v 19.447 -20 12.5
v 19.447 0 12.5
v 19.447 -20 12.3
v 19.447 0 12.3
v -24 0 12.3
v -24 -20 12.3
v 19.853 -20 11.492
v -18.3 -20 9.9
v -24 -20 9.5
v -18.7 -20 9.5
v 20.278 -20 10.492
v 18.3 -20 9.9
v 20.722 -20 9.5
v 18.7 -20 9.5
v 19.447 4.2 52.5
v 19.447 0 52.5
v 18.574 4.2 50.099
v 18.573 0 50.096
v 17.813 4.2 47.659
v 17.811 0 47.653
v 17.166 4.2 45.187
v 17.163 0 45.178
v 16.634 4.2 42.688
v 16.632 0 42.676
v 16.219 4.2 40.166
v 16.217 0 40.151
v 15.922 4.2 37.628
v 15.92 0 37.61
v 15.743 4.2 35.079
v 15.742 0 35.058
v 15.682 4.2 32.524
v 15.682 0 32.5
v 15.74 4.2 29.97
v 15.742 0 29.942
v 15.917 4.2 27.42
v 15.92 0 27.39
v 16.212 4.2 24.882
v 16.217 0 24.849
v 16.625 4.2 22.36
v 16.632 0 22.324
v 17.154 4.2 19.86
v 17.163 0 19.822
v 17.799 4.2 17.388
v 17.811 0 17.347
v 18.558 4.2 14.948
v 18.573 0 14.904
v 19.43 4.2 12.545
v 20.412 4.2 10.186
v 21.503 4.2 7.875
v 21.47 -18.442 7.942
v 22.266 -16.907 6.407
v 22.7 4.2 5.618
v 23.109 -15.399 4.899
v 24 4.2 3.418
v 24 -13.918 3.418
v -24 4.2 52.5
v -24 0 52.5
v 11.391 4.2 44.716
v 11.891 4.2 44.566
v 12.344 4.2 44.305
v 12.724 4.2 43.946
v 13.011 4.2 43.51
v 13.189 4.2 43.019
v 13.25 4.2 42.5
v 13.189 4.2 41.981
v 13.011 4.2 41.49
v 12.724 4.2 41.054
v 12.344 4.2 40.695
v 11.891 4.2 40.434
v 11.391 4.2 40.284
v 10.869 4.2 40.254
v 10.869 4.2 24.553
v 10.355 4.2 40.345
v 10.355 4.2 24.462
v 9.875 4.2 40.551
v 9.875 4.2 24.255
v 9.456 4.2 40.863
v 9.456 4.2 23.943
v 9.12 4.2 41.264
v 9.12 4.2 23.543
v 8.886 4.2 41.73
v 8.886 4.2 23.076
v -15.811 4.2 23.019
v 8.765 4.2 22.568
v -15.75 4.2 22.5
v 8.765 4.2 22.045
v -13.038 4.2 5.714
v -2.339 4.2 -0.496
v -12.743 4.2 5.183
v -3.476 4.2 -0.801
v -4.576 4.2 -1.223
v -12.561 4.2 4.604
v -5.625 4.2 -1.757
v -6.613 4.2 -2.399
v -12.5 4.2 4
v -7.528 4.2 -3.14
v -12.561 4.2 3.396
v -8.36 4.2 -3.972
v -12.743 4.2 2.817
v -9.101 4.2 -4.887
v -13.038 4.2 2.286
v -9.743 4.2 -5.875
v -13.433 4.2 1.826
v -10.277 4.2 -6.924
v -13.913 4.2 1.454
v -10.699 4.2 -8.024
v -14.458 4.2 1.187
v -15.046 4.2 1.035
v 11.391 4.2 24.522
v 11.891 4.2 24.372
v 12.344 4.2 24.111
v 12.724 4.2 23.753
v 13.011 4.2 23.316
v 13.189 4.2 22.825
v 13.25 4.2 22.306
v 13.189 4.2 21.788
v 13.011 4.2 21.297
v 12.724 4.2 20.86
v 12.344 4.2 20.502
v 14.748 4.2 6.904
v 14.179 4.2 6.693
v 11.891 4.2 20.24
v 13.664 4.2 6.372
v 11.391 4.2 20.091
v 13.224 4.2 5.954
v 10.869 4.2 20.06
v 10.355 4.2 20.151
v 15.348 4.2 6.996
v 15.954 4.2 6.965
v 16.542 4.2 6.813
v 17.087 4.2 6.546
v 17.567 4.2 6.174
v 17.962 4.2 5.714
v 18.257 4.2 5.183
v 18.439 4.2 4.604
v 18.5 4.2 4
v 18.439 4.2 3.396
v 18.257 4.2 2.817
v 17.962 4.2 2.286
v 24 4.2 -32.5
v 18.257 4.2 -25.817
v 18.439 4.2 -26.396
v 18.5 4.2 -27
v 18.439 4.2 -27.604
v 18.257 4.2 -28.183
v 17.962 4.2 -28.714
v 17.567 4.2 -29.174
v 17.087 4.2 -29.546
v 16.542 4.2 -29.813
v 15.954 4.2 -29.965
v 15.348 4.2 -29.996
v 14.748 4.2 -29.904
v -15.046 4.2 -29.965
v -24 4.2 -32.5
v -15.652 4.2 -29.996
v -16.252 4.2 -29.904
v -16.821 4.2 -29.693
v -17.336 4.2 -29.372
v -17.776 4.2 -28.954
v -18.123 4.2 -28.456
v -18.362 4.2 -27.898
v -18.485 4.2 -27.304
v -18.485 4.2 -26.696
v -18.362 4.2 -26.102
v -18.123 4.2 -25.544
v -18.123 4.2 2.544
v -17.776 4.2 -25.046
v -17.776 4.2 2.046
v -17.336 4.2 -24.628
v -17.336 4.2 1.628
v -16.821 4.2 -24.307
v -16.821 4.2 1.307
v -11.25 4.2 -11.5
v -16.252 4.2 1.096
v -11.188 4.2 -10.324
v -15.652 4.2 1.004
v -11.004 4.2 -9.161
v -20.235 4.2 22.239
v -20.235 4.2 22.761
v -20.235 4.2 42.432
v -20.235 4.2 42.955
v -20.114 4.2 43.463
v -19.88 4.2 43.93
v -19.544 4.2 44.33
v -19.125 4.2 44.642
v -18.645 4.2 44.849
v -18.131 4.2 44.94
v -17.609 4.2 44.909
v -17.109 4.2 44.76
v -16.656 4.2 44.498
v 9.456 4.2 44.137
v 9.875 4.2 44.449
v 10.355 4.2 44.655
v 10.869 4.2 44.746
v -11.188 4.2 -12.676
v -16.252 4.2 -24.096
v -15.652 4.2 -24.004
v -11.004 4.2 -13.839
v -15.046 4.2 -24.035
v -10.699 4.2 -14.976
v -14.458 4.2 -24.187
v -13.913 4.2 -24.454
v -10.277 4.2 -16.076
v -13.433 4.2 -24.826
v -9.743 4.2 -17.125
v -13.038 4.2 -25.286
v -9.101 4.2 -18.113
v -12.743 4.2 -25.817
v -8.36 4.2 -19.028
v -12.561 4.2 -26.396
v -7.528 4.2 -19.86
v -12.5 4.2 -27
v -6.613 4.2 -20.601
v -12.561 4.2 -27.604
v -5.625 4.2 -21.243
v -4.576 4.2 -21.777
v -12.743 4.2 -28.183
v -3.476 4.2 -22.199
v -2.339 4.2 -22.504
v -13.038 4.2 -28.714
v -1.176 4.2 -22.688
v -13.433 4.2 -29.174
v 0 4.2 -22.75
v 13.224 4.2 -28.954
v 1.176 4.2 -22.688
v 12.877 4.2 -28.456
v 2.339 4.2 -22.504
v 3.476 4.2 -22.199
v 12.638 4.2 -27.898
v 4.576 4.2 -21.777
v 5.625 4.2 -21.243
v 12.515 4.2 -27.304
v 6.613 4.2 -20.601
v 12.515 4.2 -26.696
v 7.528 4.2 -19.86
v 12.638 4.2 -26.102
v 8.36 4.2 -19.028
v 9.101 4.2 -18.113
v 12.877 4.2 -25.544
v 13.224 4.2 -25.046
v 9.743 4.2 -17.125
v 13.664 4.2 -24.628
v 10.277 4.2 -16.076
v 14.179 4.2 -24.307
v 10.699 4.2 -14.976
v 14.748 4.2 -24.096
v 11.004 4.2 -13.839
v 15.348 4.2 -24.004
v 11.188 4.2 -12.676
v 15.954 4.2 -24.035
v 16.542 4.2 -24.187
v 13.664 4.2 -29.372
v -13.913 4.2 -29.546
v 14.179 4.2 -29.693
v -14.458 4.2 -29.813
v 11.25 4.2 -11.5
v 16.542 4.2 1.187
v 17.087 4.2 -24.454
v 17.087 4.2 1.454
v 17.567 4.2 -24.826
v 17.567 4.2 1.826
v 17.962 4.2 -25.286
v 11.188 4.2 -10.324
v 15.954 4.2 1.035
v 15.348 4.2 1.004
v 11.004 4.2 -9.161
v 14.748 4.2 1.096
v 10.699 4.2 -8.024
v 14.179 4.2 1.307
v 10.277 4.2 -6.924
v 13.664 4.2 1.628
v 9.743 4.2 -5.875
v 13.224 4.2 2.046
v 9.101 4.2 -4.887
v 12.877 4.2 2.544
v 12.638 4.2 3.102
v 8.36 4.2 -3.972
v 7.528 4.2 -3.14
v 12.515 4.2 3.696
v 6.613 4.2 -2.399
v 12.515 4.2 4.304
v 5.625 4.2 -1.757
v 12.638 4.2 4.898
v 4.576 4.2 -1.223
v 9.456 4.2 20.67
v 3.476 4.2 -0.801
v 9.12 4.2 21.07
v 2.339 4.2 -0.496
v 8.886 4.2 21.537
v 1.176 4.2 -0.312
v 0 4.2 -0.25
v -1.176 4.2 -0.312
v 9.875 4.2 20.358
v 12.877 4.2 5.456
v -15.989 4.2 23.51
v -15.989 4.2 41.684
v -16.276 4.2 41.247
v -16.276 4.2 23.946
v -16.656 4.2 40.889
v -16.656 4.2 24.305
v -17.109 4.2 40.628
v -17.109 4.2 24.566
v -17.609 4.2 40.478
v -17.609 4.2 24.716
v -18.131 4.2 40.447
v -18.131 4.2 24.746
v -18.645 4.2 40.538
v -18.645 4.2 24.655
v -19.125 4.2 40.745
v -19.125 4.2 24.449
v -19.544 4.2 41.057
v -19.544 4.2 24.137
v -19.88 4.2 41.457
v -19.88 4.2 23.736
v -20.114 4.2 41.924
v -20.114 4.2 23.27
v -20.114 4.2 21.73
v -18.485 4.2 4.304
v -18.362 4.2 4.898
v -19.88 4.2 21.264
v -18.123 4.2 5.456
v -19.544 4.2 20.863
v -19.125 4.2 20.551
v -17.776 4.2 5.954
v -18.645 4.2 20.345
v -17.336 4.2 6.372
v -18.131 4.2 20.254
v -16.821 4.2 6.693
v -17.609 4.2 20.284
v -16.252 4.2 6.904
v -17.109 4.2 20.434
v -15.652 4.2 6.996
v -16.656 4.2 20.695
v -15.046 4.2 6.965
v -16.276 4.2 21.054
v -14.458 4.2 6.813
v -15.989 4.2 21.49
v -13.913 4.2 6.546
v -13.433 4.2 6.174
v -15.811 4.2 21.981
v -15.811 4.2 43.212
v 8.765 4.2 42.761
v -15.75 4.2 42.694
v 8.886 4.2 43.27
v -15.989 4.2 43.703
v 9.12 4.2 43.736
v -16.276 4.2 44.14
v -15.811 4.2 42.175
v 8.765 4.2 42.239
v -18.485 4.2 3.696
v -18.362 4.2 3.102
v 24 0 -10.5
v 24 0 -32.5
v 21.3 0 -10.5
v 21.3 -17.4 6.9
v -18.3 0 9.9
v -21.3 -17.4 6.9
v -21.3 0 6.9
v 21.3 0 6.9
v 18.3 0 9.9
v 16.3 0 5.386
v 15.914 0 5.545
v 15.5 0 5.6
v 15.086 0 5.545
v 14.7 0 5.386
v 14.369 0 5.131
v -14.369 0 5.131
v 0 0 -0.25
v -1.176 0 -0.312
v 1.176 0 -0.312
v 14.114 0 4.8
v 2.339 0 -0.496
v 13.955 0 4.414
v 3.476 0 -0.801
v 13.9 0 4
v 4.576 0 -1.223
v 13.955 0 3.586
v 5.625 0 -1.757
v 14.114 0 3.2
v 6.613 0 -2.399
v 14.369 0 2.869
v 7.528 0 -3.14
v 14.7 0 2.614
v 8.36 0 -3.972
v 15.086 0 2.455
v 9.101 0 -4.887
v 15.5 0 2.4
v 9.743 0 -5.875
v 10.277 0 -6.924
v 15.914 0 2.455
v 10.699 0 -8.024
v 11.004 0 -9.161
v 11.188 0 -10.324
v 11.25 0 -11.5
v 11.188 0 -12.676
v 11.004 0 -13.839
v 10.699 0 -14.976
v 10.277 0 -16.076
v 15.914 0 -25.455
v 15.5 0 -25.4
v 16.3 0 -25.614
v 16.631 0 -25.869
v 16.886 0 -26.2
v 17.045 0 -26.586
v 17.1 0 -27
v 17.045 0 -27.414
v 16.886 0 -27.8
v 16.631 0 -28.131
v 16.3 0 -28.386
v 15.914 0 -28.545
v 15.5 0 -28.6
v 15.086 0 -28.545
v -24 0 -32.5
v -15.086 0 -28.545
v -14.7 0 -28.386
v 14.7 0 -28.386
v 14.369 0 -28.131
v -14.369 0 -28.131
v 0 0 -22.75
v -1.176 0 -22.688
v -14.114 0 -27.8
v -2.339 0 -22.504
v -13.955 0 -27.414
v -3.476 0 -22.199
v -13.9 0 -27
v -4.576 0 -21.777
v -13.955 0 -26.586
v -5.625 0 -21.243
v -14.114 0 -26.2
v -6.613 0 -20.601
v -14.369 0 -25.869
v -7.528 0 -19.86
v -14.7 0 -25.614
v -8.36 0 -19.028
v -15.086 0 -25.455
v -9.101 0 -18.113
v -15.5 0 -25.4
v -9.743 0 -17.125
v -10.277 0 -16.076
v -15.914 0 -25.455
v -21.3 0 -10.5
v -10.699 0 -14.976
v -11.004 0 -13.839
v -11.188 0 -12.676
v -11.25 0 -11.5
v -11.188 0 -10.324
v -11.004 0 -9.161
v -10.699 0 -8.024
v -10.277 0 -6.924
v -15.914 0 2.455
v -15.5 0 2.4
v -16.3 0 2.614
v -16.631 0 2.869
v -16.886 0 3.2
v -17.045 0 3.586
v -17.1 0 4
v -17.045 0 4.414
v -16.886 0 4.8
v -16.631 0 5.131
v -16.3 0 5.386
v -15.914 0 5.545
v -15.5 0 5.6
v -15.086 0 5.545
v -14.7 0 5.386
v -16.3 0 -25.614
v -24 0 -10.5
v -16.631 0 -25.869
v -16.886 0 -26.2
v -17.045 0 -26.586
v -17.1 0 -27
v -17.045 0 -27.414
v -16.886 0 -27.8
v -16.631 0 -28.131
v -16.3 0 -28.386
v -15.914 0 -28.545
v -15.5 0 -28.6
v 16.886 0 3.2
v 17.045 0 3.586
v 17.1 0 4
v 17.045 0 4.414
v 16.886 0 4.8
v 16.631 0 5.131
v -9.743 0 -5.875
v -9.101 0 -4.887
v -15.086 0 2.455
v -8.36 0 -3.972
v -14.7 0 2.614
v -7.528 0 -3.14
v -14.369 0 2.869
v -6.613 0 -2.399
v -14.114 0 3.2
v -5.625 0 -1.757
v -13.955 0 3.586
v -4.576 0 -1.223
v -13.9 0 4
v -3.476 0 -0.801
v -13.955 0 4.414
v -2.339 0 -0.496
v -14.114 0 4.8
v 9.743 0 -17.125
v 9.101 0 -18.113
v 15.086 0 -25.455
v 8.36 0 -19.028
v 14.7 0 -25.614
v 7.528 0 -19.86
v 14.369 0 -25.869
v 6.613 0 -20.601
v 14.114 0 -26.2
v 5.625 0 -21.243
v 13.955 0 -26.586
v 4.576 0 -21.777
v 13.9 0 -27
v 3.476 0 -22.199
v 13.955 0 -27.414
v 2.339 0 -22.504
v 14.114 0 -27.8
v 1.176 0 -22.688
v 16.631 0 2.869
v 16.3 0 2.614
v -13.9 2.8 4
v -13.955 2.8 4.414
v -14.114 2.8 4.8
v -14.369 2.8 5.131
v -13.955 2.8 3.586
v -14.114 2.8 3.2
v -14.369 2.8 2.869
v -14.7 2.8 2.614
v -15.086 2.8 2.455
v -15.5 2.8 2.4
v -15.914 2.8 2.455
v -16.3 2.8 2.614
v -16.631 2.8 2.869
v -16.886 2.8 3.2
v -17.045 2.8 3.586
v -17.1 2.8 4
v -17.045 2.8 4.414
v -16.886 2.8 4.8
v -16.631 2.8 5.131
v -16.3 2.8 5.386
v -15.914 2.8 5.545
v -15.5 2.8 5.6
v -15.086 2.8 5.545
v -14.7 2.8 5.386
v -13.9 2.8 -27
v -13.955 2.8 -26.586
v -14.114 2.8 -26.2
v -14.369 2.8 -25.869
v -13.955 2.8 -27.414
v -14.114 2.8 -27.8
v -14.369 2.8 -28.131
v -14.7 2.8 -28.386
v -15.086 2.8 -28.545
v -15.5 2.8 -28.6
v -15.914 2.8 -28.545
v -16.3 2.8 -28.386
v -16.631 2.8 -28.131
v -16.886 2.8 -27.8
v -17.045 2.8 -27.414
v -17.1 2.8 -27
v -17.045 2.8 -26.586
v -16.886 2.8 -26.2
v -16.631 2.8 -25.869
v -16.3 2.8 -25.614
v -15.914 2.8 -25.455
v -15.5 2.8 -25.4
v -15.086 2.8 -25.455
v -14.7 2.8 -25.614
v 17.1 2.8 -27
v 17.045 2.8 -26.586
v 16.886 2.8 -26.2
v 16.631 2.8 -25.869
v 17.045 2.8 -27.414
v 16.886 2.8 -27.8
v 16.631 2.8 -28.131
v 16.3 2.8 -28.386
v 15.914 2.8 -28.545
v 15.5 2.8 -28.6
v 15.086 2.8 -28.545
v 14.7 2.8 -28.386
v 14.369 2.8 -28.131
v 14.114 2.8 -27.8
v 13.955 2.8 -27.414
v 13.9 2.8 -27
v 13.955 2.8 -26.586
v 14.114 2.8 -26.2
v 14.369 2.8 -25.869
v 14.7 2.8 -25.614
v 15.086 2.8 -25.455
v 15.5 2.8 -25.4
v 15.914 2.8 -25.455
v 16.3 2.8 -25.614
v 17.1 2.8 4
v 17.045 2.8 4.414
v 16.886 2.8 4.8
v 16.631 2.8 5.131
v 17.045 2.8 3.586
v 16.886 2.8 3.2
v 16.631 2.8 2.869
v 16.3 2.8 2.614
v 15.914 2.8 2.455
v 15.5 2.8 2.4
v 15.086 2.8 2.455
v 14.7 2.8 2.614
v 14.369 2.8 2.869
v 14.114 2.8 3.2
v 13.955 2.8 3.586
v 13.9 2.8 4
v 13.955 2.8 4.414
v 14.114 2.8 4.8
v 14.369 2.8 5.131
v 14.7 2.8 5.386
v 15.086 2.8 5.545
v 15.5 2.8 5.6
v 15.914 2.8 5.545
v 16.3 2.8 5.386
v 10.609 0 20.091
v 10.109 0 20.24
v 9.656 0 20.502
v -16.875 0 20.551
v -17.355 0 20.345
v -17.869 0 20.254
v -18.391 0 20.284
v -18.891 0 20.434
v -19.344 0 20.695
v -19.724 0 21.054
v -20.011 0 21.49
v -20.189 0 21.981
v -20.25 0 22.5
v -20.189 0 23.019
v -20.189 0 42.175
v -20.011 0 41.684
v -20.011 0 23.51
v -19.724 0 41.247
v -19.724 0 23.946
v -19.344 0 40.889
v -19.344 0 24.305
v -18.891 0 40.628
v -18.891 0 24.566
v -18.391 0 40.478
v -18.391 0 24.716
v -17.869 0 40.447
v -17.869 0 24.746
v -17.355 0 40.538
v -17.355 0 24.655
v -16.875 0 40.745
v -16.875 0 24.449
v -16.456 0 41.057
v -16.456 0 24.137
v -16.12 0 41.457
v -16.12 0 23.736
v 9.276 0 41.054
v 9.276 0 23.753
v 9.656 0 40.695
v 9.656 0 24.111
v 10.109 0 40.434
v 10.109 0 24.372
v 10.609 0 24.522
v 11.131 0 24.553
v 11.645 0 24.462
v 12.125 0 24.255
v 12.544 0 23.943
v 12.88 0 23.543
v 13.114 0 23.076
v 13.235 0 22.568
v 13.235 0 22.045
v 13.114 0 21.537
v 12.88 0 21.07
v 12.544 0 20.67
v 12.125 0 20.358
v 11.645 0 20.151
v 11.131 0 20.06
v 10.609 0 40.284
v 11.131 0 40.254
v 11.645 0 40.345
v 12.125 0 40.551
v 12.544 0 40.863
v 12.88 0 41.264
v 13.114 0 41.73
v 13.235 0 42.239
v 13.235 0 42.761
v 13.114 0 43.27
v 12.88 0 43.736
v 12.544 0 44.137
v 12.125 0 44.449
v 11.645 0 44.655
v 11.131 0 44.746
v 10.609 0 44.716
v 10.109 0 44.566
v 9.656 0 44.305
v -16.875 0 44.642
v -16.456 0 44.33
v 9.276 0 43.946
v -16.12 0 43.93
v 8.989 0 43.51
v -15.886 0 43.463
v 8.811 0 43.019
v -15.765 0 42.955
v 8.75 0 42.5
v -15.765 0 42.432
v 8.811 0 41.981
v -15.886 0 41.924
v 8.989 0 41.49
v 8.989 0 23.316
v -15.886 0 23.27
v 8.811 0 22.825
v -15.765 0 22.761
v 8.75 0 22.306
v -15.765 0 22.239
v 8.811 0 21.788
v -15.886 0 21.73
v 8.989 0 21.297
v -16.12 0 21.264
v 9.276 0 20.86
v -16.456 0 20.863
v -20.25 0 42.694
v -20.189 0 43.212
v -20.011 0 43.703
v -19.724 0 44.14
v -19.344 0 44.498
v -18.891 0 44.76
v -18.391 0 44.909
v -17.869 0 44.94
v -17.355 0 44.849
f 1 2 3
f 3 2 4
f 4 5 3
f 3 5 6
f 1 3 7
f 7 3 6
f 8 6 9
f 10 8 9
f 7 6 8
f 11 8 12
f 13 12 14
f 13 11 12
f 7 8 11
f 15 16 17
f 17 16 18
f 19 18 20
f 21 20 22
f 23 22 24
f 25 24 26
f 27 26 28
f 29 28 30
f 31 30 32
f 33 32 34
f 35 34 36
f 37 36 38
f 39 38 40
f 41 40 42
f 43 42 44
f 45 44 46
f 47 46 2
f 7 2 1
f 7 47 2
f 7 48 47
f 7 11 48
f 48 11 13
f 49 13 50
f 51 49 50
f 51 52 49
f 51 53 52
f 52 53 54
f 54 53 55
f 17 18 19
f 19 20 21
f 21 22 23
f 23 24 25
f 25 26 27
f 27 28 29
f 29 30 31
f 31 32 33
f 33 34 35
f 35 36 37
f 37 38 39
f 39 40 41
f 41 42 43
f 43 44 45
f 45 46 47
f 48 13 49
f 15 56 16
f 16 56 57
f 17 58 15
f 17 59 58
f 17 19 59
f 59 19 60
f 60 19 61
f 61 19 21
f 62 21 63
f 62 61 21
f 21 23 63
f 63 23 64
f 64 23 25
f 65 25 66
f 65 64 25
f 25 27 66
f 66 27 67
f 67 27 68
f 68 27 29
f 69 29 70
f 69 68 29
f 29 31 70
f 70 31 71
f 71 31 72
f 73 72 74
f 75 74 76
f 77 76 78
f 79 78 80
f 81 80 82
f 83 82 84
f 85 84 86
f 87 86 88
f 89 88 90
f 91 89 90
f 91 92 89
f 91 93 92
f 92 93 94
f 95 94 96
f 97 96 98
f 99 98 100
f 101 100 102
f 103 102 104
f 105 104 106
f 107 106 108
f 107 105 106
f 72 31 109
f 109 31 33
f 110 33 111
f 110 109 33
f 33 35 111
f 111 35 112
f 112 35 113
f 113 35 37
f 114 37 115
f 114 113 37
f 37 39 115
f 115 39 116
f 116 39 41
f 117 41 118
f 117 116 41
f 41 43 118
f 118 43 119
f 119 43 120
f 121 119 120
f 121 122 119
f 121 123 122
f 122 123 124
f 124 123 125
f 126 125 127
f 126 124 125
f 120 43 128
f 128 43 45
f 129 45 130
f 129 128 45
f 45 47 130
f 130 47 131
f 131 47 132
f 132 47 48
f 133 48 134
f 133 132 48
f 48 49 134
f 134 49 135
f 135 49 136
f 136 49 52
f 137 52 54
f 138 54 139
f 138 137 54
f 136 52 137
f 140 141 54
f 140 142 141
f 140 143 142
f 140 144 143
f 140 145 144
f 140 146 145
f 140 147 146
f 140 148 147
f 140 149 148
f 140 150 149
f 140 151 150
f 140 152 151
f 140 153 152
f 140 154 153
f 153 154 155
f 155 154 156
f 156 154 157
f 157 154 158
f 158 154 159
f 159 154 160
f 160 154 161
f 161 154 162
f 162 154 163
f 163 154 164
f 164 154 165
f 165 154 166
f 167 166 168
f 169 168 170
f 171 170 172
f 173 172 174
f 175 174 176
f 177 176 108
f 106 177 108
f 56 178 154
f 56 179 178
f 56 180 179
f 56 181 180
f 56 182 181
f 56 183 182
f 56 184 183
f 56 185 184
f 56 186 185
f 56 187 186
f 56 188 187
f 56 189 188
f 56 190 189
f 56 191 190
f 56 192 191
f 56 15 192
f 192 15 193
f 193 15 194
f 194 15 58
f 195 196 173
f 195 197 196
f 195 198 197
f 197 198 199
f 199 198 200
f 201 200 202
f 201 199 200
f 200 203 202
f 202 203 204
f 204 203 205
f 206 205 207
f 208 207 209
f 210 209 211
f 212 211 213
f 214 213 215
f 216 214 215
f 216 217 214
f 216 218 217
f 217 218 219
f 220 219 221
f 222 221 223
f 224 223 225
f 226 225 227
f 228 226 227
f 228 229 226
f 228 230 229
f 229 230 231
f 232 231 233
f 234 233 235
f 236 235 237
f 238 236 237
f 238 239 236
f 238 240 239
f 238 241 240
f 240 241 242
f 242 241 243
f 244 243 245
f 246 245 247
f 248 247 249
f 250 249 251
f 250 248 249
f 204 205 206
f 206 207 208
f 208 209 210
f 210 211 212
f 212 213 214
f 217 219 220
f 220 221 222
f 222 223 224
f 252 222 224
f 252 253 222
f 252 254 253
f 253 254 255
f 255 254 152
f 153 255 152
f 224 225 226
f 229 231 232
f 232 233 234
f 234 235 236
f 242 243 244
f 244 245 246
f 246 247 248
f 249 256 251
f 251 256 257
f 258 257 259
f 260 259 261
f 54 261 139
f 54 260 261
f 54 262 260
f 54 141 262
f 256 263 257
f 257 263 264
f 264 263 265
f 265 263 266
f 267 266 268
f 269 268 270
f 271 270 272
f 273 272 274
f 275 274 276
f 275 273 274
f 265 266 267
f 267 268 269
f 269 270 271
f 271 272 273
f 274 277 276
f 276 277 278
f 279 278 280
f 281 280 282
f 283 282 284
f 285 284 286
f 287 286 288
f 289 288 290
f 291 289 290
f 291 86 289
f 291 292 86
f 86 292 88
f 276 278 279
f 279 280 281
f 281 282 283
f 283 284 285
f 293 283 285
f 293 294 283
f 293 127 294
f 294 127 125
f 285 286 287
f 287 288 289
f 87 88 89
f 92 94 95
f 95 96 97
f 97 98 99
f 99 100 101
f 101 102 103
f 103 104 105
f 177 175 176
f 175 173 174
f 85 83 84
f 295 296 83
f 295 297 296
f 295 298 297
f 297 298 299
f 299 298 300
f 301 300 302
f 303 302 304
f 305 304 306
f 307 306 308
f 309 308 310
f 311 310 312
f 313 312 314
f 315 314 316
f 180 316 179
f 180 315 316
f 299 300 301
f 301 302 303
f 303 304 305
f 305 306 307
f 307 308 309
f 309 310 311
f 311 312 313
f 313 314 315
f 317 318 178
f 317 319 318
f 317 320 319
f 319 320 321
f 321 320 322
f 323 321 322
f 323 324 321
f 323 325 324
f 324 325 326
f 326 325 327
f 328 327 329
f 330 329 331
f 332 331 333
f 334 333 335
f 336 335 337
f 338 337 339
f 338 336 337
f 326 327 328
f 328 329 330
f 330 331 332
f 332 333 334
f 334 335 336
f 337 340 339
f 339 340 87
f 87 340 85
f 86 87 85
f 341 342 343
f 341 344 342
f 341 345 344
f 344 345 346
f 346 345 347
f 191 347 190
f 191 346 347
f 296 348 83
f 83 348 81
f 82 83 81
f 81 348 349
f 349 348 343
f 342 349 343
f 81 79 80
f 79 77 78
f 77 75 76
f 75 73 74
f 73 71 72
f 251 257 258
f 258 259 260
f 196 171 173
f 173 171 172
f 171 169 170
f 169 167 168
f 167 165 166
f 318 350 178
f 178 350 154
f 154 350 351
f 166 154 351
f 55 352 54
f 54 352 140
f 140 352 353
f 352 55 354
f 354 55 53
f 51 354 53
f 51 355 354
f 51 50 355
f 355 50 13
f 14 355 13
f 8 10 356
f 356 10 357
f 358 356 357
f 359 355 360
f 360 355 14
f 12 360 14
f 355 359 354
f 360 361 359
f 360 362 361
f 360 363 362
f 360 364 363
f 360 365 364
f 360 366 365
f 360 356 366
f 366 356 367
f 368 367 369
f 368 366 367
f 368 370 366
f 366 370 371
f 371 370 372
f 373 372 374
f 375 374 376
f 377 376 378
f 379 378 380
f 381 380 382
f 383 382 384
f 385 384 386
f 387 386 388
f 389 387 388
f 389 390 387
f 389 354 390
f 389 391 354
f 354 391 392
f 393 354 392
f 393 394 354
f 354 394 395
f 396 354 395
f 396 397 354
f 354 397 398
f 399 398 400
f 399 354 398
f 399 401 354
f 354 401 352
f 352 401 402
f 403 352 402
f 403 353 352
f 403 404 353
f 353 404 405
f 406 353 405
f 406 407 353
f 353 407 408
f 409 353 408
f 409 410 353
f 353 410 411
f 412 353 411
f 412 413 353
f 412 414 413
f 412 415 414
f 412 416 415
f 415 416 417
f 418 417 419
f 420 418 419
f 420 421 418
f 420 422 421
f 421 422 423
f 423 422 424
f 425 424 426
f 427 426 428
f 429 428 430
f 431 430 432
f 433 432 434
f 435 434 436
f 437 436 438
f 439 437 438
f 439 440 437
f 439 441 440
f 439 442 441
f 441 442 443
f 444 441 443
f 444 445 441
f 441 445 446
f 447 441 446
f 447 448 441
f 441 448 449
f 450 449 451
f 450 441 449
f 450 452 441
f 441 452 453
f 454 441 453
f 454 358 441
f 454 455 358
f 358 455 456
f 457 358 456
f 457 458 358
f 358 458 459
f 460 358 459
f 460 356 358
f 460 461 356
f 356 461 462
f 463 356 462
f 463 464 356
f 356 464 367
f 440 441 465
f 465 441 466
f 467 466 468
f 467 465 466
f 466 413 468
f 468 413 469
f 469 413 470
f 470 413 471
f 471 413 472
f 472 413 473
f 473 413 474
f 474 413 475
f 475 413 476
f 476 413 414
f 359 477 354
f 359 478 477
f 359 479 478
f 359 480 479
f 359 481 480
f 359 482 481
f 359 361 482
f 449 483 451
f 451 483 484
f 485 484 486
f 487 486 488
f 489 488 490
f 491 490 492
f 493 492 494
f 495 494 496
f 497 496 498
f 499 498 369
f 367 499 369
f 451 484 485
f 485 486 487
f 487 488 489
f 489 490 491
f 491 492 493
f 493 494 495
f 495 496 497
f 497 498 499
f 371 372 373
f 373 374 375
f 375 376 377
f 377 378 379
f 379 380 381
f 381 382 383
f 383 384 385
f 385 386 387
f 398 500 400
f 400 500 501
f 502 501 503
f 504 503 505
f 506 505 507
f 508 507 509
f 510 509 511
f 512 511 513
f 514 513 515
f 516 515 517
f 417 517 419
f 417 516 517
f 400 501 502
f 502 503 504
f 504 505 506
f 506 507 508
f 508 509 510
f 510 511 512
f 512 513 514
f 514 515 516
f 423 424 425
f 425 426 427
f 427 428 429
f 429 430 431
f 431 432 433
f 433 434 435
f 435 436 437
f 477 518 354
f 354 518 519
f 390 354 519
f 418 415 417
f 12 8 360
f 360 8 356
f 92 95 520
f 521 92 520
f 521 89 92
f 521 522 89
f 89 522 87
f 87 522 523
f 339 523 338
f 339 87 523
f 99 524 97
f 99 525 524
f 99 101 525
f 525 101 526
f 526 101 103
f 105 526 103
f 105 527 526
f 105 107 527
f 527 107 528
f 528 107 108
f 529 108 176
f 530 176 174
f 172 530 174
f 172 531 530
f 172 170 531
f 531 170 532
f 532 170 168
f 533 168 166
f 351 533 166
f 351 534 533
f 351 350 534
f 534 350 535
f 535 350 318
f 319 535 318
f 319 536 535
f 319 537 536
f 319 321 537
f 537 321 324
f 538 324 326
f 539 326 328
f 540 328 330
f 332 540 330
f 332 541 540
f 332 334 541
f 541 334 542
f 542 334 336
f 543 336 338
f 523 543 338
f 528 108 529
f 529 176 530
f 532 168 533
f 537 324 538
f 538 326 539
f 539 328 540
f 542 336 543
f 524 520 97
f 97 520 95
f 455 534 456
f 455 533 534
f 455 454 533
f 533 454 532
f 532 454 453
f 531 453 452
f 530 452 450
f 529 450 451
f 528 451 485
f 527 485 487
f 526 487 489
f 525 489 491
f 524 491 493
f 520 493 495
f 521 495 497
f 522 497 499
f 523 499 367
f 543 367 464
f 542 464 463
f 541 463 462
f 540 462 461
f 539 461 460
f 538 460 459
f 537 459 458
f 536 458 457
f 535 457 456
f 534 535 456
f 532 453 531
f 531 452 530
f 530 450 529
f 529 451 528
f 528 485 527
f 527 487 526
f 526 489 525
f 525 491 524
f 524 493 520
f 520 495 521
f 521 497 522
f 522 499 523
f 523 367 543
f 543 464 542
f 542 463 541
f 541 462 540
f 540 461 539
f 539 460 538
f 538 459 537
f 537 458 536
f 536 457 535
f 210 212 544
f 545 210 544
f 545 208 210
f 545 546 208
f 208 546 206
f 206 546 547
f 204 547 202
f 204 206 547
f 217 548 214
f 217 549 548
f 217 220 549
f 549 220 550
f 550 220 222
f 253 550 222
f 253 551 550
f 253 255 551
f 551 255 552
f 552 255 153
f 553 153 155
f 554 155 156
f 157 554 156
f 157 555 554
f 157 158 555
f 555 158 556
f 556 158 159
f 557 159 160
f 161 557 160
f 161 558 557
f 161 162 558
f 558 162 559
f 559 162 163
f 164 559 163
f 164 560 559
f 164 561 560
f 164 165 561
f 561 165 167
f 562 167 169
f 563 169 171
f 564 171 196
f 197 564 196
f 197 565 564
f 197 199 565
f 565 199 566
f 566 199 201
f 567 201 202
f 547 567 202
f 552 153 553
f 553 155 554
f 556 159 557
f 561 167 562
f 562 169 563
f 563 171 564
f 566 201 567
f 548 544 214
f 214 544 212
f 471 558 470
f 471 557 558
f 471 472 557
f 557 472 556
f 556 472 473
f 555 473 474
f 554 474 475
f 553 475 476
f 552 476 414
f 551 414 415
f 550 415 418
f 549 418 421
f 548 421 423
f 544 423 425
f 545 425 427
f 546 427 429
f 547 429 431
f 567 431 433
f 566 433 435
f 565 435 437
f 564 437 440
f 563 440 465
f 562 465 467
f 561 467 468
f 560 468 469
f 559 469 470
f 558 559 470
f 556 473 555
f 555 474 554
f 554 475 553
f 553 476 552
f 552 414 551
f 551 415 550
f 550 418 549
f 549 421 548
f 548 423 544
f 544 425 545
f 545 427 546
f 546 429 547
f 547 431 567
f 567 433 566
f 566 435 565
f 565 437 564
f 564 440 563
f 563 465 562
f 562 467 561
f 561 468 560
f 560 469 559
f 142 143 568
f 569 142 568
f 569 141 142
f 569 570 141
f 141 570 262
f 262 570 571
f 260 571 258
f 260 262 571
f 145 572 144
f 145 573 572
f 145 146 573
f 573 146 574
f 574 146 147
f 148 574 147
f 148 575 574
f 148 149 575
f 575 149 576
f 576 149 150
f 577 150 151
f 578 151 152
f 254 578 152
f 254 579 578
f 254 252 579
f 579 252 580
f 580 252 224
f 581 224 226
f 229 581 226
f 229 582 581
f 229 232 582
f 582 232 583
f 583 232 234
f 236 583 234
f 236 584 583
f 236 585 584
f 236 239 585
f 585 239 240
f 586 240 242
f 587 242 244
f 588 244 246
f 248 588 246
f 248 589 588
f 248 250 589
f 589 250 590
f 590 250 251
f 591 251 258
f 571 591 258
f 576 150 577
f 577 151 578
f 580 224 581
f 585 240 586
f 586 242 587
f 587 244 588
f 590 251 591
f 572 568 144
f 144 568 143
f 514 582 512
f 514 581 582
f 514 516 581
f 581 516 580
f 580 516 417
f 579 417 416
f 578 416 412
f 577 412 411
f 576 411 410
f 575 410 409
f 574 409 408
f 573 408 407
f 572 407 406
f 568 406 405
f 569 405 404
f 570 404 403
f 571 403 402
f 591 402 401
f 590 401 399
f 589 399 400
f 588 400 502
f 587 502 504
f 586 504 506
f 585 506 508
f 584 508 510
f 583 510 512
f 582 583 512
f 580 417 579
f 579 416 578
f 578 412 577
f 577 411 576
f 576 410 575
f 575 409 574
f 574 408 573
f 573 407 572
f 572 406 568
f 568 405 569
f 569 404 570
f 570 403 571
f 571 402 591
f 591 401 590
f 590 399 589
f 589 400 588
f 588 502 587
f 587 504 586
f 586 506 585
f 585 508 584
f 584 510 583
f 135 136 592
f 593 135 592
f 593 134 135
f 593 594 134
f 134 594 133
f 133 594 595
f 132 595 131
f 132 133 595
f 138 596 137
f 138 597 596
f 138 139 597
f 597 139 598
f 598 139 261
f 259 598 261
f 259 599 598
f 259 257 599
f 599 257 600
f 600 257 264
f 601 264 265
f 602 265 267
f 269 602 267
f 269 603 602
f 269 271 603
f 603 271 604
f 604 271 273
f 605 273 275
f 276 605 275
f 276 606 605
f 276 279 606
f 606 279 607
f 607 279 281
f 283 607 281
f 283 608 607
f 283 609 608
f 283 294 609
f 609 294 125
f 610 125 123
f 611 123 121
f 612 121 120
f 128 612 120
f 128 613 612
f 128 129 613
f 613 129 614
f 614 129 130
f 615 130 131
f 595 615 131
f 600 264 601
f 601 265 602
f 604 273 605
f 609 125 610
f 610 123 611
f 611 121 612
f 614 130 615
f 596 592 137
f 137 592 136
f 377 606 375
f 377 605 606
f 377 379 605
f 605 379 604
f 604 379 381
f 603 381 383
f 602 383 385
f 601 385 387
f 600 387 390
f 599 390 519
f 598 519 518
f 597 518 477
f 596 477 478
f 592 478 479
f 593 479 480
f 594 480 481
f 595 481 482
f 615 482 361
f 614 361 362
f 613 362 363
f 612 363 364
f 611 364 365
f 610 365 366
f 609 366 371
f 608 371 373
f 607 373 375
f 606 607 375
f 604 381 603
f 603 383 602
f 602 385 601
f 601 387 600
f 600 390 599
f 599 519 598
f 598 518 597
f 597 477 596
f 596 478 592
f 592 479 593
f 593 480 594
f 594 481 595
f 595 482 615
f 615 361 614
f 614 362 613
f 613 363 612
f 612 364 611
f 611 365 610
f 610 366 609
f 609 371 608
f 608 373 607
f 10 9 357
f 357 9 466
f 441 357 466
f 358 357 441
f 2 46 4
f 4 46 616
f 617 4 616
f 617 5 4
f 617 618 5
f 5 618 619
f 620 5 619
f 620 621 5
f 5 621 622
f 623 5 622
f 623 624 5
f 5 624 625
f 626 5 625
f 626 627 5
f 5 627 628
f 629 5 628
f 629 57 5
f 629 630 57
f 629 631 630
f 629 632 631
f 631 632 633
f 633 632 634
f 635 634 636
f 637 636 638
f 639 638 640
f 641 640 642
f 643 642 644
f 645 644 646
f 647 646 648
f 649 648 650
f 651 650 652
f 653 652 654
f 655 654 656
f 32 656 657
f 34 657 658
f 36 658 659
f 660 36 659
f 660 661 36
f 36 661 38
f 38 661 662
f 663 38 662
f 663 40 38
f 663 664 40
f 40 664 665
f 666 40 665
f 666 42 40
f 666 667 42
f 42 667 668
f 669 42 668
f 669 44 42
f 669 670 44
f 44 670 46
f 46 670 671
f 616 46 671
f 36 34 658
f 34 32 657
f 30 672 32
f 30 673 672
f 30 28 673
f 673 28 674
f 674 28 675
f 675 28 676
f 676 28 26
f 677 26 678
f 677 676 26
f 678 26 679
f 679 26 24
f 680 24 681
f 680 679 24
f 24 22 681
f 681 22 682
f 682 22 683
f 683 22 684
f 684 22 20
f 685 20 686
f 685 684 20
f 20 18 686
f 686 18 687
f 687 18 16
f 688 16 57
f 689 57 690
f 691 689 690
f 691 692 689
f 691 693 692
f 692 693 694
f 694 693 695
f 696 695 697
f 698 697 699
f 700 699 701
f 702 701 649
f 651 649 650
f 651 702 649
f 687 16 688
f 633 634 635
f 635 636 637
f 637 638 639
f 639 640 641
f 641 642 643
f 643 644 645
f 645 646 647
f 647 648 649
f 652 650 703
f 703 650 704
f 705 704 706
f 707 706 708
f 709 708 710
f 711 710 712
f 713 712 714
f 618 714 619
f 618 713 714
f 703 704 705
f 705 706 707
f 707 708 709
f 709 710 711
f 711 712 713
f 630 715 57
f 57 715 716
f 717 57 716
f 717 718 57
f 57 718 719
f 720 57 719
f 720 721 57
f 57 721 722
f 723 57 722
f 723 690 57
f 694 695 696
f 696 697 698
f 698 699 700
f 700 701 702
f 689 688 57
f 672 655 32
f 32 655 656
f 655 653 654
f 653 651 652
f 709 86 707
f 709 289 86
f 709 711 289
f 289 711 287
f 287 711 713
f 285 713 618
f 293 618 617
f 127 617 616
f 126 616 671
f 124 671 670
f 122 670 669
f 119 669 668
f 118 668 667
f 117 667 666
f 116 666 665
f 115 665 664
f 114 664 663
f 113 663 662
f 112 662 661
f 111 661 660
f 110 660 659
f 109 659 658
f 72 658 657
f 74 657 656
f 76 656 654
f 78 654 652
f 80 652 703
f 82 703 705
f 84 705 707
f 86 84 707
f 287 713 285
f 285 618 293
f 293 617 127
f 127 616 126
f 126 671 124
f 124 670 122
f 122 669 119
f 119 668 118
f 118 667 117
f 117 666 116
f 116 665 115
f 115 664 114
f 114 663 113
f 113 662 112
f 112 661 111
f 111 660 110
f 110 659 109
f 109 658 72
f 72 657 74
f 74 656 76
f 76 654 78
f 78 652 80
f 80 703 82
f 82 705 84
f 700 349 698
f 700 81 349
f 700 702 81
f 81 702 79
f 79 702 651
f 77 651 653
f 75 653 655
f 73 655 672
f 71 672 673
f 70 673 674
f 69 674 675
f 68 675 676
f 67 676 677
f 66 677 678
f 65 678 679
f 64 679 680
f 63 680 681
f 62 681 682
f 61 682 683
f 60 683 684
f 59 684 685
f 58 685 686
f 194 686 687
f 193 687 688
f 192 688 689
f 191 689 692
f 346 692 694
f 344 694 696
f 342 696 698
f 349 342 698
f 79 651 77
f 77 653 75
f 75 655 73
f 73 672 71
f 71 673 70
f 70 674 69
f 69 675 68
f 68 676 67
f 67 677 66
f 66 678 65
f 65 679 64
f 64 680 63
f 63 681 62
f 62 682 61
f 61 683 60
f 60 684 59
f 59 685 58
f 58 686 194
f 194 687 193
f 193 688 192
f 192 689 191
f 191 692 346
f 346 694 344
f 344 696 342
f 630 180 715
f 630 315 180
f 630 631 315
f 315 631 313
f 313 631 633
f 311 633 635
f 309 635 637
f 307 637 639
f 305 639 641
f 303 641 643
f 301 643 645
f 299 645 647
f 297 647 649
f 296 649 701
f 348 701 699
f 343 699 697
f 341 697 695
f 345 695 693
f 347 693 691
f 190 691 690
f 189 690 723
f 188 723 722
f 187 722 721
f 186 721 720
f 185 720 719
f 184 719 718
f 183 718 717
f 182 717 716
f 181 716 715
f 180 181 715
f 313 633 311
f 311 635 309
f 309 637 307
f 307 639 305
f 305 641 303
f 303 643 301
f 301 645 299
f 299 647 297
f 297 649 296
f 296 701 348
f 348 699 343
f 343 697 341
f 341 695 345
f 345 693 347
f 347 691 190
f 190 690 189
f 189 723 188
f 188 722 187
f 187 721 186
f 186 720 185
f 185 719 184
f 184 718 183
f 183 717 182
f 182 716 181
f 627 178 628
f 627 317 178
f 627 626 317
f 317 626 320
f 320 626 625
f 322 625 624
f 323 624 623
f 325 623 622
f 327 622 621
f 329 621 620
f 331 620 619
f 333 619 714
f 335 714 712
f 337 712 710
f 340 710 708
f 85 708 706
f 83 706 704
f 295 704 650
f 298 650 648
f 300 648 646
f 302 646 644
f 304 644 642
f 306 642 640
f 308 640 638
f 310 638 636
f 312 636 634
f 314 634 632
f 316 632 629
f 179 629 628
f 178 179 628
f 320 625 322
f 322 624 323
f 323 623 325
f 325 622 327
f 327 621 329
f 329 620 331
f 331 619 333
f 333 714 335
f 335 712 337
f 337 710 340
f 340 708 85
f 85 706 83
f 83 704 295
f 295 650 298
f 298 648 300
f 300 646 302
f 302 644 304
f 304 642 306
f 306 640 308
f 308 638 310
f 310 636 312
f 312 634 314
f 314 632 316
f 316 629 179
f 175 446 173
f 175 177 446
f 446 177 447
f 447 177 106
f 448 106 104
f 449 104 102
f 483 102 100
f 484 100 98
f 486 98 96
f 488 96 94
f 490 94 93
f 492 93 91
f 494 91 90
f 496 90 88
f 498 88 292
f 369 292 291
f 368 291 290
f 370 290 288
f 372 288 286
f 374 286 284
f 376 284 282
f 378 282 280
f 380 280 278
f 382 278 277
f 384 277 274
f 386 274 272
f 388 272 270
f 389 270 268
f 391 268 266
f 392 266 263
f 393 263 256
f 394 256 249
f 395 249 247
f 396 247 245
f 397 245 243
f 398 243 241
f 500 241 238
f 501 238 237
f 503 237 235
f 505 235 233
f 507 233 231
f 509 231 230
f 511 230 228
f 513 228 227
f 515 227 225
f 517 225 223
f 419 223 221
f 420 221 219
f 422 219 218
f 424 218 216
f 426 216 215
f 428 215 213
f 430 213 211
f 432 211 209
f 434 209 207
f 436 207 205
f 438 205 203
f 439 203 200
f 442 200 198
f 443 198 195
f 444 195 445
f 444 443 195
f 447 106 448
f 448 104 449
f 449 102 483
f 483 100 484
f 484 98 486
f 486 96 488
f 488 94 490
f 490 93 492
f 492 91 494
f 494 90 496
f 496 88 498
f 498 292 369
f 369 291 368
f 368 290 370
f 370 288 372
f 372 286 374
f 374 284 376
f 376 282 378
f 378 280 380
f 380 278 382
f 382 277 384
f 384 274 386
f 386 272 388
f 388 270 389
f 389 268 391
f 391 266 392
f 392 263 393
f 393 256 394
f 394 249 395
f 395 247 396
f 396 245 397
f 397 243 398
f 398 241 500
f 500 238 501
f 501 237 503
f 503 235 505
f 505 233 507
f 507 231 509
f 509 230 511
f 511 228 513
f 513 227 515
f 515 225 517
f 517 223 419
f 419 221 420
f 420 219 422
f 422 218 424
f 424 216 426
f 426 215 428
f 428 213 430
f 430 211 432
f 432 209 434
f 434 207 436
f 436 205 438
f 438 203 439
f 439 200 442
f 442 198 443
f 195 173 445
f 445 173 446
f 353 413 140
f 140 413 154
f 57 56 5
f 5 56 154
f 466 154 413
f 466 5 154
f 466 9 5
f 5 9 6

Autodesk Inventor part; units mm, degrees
ref_plane "YZ Plane" through (0, 0, 0) normal (1, 0, 0) x (0, 1, 0)
ref_plane "XZ Plane" through (0, 0, 0) normal (0, 1, 0) x (-1, 0, 0)
ref_plane "XY Plane" through (0, 0, 0) normal (0, 0, 1) x (1, 0, 0)
sketch "Sketch1" plane through (0, 0, 0) normal (0, 1, 0) x (-1, 0, 0)
  line L0 (-24, 32.5) -> (24, 32.5)
  line L1 (24, 32.5) -> (24, -32.5)
  line L2 (24, -32.5) -> (-24, -32.5)
  line L3 (-24, -32.5) -> (-24, 32.5)
  line L4 (-24, 32.5) -> (24, -32.5) construction
  line L5 (24, 32.5) -> (-24, -32.5) construction
  line L6 (24, 9.5) -> (-24, 9.5)
  line L7 (-24, 9.5) -> (-24, -32.5)
  line L8 (-24, -32.5) -> (24, -32.5)
  line L9 (24, -32.5) -> (24, 9.5)
  circle A0 centre (0, -11.5) radius 11.25
  line L10 (24, 12.5) -> (-24, 12.5)
  line L11 (-24, 24.95) -> (-24, 20.05)
  line L12 (15.5, -27) -> (-15.5, -27) construction
  line L13 (-15.5, -27) -> (-15.5, 4) construction
  line L14 (-15.5, 4) -> (15.5, 4) construction
  line L15 (15.5, 4) -> (15.5, -27) construction
  line L16 (15.5, -27) -> (-15.5, 4) construction
  line L17 (-15.5, -27) -> (15.5, 4) construction
  line L18 (-24, 52.5) -> (24, 52.5)
  line L19 (24, 52.5) -> (24, 32.5)
  line L20 (24, 32.5) -> (-24, 32.5)
  line L21 (-24, 32.5) -> (-24, 52.5)
  point P0 (0, 0)
  point P1 (-21.1, 9.5)
  point P2 (21.1, 9.5)
  point P3 (18, 42.6936)
  point P4 (-11, 42.5)
  point P5 (18, 22.5)
  point P6 (-11, 22.3064)
  dimension "d0" = 48
  dimension "d1" = 65
  dimension "d2" = 20
  dimension "d3" = 3
  dimension "d4" = 2.9
  dimension "d5" = 2.9
  dimension "d6" = 22.5
  dimension "d35" = 31
  dimension "d36" = 31
  dimension "d71" = 20
  dimension "d73" = 6
  dimension "d74" = 6
  dimension "d82" = 35
  dimension "d83" = 35
extrude "Extrusion1" add sketch "Sketch1" along normal blind 4.2
sketch "Sketch2" plane through (0, 4.2, 0) normal (0, 1, 0) x (1, 0, 0)
  point P0 (0, 0)
  point P1 (11, -42.5)
  point P2 (11, -22.3064)
  point P3 (-18, -22.5)
  point P4 (-18, -42.6936)
hole "Hole5" at (11, 4.2, 42.5) at (-18, 4.2, 42.6936) at (11, 4.2, 22.3064) at (-18, 4.2, 22.5) direction (0, -1, 0) diameter 4.5 end through all
extrude "Extrusion3" add sketch "Sketch1" against normal blind 20 contours L1 L6 L3 L10
sketch "Sketch4" plane through (24, 0, -32.5) normal (1, 0, 0) x (0, 0, -1)
  line L0 (-42, -20) -> (-42, 0) projected
  line L1 (-42, -20) -> (-22, 0)
  line L2 (0, 0) -> (-42, 0) projected
  line L3 (-22, 0) -> (-42, 0)
  line L4 (-42, 0) -> (-42, -20)
  point P0 (-32.5, 0)
  dimension "d32" = 20
extrude "Extrusion4" add sketch "Sketch4" against normal blind 2.7
ref_plane "Work Plane1" through (0, 0, 52.5) normal (-1, 0, 0) x (0, 0, 1)
mirror "Mirror1" about plane through (0, 0, 52.5) normal (-1, 0, 0) of "Extrusion4"
sketch "Sketch5" plane through (0, 4.2, 0) normal (0, 1, 0) x (1, 0, 0)
  point P0 (0, 0)
  point P1 (-15.5, 27)
  point P2 (15.5, 27)
  point P3 (-15.5, -4)
  point P4 (15.5, -4)
hole "Hole4" at (-15.5, 4.2, -27) at (15.5, 4.2, -27) at (-15.5, 4.2, 4) at (15.5, 4.2, 4) direction (0, -1, 0) diameter 3.2 depth 8 tip angle 118 countersink diameter 6 countersink angle 90
sketch "Sketch6" plane through (21.3, -20, 9.5) normal (0, 0, -1) x (-1, 0, 0)
  line L0 (42.6, 0) -> (42.6, 20) projected
  line L1 (0, 20) -> (42.6, 20) projected
  line L2 (0, 20) -> (0, 0) projected
  line L3 (42.6, 0) -> (0, 0) projected
  point P0 (21.3, 20)
extrude "ajustement 0.2mm" cut sketch "Sketch6" against normal blind 0.4
sketch "Sketch7" plane through (0, 4.2, 0) normal (0, 1, 0) x (1, 0, 0)
  circle A0 centre (70.6822, -32.5) radius 55
  line L0 (21.3, -9.9) -> (-21.3, -9.9) construction
  line L1 (21.3, -9.9) -> (21.3, -51.2) construction
  line L2 (137, -22.5) -> (-72, -22.5) construction
  line L3 (0, -123.9517) -> (0, 131.2102) construction
  circle A1 centre (0, 11.5) radius 83.2585 construction
  line L4 (134.8387, -42.5) -> (-75.1613, -42.5) construction
  line L5 (134.8387, -32.5) -> (-75.1613, -32.5) construction
  point P0 (0, 0)
  dimension "d67" = 166.517
  dimension "d53" = 110
  dimension "d69" = 20
  dimension "d70" = 10
sketch "Sketch8" plane through (0, 0, 0) normal (0, -1, 0) x (1, 0, 0)
  line L0 (-21.3, 9.9) -> (21.3, 9.9) projected
  line L1 (21.3, -10.5) -> (21.3, 9.5) projected
  line L2 (-21.3, -10.5) -> (-21.3, 9.5) projected
  line L3 (21.3, 9.9) -> (-21.3, 9.9) projected
  line L4 (-18.3, 9.9) -> (-21.3, 6.9)
  line L5 (-21.3, 9.9) -> (-21.3, -10.5) projected
  line L6 (18.3, 9.9) -> (21.3, 6.9)
  line L7 (21.3, -10.5) -> (21.3, 9.9) projected
  point P0 (0, 0)
  dimension "d54" = 3
  dimension "d55" = 3
  dimension "d56" = 3
  dimension "d57" = 3
extrude "Extrusion6" add sketch "Sketch8" along normal blind 20
sketch "Sketch9" plane through (24, 0, -32.5) normal (1, 0, 0) x (0, 0, -1)
  line L0 (-39.4, -20) -> (-42, -20) projected
  line L1 (-39.4, -17.4) -> (-39.4, -20) projected
  line L2 (-42, -20) -> (-22, 0) projected
  point P0 (-32.5, 0)
extrude "Extrusion7" cut sketch "Sketch9" against normal through all
extrude "Extrusion8" cut sketch "Sketch7" against normal blind 30
sketch "Sketch10" plane through (-24, -20, 12.5) normal (0, 0, 1) x (1, 0, 0)
  line L0 (43.4475, 0) -> (43.4475, 20) projected
  line L1 (0, 20) -> (43.4475, 20) projected
  line L2 (0, 20) -> (0, 0) projected
  line L3 (43.4475, 0) -> (0, 0) projected
  point P0 (24, 20)
extrude "ajustement 0.2" cut sketch "Sketch10" against normal blind 0.2
equation "\"d5\" = d4"
equation "\"d74\" = d73"
equation "\"d83\" = d82"
equation "\"d55\" = d54"
equation "\"d56\" = d54"
equation "\"d57\" = d56"
properties part number "support_nema17_40mm"
